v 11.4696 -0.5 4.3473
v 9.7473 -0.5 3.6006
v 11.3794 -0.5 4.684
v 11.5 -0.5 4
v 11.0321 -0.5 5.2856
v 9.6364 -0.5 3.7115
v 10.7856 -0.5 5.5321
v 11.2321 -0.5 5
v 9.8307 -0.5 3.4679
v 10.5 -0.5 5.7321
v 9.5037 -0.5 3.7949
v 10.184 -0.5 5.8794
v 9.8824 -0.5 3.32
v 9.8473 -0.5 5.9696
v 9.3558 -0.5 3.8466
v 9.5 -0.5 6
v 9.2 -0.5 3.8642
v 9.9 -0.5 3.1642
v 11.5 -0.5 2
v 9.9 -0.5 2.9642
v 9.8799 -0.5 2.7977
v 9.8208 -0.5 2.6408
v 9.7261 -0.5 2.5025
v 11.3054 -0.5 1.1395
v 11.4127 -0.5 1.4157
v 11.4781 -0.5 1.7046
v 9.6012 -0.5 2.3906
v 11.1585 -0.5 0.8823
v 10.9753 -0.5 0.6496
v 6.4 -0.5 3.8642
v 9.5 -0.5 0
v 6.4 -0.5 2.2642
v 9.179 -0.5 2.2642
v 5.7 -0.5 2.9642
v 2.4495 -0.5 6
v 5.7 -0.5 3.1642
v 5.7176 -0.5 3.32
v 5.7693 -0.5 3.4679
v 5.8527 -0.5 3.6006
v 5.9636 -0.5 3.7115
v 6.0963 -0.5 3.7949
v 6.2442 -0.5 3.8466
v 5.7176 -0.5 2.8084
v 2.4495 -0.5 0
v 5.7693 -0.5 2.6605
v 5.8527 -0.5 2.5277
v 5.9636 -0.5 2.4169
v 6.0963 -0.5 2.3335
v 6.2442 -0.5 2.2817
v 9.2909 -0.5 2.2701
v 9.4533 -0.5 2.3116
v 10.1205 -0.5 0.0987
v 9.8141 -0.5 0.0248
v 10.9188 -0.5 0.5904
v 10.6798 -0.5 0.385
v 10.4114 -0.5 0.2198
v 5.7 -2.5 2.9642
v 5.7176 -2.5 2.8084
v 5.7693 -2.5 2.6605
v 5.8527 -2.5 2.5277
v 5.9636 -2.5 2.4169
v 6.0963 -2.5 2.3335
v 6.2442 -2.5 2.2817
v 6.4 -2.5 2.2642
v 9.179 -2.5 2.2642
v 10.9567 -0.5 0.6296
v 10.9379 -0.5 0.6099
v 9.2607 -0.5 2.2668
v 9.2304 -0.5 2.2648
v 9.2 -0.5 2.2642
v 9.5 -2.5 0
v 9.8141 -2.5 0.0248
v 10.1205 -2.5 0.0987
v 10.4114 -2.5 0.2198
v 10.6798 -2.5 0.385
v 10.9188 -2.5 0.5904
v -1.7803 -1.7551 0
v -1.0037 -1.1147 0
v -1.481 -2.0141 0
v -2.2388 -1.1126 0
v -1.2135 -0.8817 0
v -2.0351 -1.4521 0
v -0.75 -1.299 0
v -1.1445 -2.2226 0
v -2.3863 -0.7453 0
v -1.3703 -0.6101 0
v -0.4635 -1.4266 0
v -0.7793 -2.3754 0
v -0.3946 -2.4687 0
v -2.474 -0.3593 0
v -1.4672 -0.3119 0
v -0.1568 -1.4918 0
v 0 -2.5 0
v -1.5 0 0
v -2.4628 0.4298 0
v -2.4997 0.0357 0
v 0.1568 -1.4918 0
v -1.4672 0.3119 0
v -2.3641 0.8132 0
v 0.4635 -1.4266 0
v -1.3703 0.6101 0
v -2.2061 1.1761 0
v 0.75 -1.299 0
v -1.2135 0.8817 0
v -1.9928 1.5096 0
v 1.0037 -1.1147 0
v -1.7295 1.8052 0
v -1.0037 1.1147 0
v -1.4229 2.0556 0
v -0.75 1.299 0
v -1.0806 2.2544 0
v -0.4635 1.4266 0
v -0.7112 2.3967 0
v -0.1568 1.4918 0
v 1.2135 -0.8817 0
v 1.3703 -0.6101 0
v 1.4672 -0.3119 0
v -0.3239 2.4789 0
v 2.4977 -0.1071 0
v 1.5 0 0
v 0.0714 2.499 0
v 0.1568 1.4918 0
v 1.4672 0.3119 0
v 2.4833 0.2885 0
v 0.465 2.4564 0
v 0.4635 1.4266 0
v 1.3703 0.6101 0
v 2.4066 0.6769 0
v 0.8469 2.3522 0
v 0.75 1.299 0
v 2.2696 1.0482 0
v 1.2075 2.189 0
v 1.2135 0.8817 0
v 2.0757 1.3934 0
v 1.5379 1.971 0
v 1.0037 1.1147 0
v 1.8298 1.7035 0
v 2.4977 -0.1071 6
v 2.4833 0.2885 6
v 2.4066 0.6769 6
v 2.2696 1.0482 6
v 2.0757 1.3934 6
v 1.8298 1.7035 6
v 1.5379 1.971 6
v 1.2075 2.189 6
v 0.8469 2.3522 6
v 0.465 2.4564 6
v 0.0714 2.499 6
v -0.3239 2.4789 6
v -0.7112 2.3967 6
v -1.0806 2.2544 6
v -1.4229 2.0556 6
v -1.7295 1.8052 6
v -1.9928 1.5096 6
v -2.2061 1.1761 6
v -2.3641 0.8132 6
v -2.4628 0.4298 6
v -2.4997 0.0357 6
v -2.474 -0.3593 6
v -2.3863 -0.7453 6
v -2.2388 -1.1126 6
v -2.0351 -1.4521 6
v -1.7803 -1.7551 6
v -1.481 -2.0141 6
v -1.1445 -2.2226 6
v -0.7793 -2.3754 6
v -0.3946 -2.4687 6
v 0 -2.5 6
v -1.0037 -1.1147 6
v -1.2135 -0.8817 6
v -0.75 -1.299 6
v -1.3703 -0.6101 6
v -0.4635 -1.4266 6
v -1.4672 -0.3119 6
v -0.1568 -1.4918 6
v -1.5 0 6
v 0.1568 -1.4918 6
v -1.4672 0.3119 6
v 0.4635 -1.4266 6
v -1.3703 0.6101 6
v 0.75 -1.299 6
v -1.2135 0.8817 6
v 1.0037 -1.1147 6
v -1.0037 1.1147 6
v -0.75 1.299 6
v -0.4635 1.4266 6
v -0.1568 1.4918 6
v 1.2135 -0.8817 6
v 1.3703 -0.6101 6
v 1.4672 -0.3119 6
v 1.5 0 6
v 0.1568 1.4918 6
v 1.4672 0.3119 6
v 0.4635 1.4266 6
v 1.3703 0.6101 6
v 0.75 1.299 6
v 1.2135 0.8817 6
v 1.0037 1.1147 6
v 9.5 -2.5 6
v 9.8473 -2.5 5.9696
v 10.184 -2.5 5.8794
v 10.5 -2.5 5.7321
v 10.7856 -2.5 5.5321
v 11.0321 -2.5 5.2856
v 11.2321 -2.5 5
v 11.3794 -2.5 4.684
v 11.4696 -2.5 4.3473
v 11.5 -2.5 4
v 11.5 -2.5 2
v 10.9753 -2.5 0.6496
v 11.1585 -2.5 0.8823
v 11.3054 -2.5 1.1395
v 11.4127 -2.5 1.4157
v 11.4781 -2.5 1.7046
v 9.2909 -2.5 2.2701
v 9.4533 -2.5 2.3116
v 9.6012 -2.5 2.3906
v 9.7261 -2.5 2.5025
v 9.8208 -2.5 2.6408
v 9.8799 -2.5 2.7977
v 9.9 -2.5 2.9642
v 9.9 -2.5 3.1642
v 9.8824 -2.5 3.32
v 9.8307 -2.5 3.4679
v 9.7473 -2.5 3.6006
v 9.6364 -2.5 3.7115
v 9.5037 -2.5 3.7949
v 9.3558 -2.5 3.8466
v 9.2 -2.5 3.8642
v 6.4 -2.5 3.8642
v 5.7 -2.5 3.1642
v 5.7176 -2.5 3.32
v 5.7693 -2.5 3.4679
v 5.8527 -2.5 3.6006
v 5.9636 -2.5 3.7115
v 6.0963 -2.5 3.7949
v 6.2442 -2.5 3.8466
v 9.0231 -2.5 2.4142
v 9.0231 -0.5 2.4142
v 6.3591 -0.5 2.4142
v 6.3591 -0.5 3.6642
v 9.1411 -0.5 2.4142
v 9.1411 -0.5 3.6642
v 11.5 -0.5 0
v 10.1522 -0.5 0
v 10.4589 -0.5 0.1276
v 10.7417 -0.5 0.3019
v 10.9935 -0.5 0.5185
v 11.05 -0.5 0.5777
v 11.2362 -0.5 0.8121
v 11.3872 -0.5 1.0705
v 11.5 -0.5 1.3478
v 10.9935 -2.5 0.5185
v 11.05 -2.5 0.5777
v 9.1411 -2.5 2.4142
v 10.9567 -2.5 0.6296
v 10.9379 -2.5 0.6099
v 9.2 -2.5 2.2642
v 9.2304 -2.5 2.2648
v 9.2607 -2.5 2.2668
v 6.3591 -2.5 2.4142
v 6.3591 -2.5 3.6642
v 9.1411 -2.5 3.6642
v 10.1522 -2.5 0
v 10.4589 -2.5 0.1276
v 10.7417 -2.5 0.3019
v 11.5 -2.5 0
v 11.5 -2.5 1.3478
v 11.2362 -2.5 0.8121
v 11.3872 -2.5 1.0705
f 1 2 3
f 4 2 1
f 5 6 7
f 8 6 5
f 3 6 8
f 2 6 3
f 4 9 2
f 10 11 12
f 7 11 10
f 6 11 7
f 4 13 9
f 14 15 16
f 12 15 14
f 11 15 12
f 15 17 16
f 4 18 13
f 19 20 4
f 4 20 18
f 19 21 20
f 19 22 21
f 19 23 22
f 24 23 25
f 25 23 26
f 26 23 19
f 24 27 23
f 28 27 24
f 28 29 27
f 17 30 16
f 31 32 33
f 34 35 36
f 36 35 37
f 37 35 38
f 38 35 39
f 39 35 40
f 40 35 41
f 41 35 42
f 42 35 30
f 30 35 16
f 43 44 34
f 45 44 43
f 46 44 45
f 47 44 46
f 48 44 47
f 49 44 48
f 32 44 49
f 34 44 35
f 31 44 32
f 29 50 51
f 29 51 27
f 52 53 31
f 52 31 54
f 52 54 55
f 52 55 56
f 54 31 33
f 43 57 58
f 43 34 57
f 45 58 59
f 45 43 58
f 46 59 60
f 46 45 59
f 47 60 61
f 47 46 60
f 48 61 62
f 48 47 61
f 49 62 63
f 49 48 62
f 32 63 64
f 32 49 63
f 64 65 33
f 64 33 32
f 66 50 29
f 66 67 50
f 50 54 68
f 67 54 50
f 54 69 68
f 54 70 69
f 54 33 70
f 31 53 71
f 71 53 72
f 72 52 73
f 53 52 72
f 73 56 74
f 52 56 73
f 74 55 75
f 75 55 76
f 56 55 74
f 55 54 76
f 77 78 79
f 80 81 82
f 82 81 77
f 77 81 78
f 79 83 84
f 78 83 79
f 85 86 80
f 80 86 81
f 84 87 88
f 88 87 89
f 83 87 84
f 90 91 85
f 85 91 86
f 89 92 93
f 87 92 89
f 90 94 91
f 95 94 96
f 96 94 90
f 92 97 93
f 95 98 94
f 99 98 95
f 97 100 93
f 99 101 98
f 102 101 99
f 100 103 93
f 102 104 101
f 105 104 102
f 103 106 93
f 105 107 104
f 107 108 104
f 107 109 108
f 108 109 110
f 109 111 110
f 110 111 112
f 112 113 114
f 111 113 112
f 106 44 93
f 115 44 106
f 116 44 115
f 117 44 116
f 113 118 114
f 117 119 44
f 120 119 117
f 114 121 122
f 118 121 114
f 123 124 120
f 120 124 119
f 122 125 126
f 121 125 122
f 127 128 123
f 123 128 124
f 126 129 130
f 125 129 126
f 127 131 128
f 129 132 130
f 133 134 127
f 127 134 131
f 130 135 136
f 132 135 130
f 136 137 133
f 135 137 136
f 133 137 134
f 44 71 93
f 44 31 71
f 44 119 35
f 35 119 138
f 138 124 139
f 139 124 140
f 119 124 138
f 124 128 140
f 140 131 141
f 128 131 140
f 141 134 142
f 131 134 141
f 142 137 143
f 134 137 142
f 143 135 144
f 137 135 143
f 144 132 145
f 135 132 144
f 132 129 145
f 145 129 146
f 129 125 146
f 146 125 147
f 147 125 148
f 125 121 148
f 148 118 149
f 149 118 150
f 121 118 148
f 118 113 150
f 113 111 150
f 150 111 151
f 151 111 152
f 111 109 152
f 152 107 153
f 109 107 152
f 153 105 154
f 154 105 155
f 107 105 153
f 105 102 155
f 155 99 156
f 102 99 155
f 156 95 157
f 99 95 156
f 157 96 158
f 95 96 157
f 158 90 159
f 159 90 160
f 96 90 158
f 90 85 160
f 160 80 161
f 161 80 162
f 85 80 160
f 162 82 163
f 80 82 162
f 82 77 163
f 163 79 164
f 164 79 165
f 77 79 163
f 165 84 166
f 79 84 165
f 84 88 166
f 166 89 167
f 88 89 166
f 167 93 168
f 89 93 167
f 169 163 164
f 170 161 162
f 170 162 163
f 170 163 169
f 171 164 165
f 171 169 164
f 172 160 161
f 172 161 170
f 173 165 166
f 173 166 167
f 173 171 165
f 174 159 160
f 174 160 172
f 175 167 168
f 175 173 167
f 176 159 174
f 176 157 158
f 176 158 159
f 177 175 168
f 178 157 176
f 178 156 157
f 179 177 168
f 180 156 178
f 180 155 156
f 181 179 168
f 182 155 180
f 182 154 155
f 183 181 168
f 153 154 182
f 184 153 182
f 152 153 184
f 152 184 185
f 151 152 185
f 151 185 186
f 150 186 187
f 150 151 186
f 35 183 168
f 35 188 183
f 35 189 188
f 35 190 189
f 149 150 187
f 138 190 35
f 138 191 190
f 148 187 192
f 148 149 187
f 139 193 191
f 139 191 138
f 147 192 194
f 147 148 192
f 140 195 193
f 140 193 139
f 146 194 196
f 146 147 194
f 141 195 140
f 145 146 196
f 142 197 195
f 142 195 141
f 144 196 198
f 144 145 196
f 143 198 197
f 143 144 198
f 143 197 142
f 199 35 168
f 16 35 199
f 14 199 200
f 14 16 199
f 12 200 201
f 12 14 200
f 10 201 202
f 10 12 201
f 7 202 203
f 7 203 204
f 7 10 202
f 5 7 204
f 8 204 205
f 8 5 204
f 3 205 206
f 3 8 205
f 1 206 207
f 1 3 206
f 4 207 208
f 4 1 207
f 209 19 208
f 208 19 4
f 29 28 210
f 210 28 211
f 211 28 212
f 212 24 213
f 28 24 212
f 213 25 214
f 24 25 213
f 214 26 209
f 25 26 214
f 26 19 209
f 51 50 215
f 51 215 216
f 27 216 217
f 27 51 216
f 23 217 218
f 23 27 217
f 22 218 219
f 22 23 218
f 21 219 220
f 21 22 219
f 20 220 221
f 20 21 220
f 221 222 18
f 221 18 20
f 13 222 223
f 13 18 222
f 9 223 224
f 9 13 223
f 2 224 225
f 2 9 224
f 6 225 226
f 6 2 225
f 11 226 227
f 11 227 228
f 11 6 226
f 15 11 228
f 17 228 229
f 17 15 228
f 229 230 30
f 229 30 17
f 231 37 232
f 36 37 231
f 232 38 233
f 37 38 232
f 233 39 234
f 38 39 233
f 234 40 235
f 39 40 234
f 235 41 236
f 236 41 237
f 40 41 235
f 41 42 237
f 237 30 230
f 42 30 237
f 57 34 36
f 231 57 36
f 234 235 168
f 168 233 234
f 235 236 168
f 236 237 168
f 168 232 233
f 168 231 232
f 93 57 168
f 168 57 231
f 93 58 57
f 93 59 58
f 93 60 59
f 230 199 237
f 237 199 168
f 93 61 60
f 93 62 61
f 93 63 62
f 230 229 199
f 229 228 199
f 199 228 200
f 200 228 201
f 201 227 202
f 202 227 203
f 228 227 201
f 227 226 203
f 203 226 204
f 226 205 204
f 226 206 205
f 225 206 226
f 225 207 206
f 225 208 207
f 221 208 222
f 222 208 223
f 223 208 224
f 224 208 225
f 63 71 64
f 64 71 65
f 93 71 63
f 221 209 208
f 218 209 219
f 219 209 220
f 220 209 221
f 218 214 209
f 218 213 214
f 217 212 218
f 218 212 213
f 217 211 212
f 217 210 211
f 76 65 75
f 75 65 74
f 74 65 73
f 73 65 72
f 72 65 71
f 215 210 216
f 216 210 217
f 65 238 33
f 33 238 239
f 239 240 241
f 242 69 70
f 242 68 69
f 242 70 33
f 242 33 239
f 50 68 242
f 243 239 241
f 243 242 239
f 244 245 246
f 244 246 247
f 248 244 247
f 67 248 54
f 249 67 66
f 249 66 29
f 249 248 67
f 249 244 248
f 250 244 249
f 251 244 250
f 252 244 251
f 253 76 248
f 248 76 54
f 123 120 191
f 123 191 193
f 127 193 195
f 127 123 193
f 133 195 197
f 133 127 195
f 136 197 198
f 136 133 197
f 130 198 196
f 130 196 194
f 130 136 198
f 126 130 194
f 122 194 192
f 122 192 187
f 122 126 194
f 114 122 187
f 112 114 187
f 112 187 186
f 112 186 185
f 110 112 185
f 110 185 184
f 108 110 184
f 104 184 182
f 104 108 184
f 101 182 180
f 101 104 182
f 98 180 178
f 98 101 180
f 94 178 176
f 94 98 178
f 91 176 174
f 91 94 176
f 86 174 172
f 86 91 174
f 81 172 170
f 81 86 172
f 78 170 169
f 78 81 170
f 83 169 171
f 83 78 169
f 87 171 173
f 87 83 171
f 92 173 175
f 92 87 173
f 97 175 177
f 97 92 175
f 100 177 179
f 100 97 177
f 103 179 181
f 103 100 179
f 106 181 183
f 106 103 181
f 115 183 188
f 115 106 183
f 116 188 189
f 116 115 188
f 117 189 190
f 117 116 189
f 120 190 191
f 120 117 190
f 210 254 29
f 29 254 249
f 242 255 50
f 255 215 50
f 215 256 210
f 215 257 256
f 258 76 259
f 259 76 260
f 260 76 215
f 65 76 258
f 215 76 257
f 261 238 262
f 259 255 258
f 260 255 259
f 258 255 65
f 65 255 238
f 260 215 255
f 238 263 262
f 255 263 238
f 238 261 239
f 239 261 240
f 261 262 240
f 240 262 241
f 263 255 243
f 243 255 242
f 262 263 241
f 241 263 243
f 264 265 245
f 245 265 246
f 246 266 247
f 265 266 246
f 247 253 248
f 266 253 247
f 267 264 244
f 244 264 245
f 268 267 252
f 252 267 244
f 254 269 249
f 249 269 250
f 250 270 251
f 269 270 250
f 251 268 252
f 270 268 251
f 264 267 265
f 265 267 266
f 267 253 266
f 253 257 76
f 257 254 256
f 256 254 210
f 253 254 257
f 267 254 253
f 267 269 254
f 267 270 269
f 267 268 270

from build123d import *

# Parameters (mm, degrees)
SKETCH_R     = 1.5
PAD_DEPTH    = 6
SKETCH001_W  = 4.2
SKETCH001_H  = 1.6
POCKET_DEPTH = 5
FILLET_R     = 2
FILLET001_R  = 0.7
PAD001_DEPTH = 2


with BuildPart() as part:
    # Sketch → Pad (new body)
    with BuildSketch(Plane.XY):
        with BuildLine():
            ThreePointArc((2.44949, -0.5), (-1.581139, 1.936492), (0, -2.5))
            Line((0, -2.5), (11.5, -2.5))
            Line((11.5, -2.5), (11.5, -0.5))
            Line((11.5, -0.5), (2.44949, -0.5))
        make_face()
        Circle(SKETCH_R, mode=Mode.SUBTRACT)
    extrude(amount=PAD_DEPTH)

    # Sketch001 (on Face2 of Pad) → Pocket (cut)
    with BuildSketch(Plane.XZ.offset(2.5)):
        with Locations((7.8, 3.064189)):
            Rectangle(SKETCH001_W, SKETCH001_H)
    extrude(amount=-POCKET_DEPTH, mode=Mode.SUBTRACT)

    # Fillet
    fillet_edges = [part.edges().sort_by_distance(p)[0] for p in [
        (11.5, -1.5, 6),
        (11.5, -1.5, 0),
    ]]
    fillet(fillet_edges, radius=FILLET_R)

    # Fillet001
    fillet001_edges = [part.edges().sort_by_distance(p)[0] for p in [
        (5.7, -1.5, 3.864189),
        (5.7, -1.5, 2.264189),
        (9.9, -1.5, 3.864189),
        (9.9, -1.5, 2.264189),
    ]]
    fillet(fillet001_edges, radius=FILLET001_R)

    # Sketch002 (on Face16 of Fillet001) → Pad001 (join)
    with BuildSketch(Plane.XZ.offset(2.5)):
        with BuildLine():
            Line((6.359142, 3.664189), (9.14113, 3.664189))
            Line((9.14113, 3.664189), (9.14113, 2.414189))
            Line((9.14113, 2.414189), (11.049985, 0.577696))
            ThreePointArc((11.049985, 0.577696), (11.316274, 0.938609), (11.5, 1.347771))
            Line((11.5, 1.347771), (11.5, 0))
            Line((11.5, 0), (10.152229, 0))
            ThreePointArc((10.152229, 0), (10.603745, 0.209148), (10.993504, 0.518497))
            Line((10.993504, 0.518497), (9.023117, 2.414189))
            Line((9.023117, 2.414189), (6.359142, 2.414189))
            Line((6.359142, 2.414189), (6.359142, 3.664189))
        make_face()
    extrude(amount=-PAD001_DEPTH)


solid = part.part
